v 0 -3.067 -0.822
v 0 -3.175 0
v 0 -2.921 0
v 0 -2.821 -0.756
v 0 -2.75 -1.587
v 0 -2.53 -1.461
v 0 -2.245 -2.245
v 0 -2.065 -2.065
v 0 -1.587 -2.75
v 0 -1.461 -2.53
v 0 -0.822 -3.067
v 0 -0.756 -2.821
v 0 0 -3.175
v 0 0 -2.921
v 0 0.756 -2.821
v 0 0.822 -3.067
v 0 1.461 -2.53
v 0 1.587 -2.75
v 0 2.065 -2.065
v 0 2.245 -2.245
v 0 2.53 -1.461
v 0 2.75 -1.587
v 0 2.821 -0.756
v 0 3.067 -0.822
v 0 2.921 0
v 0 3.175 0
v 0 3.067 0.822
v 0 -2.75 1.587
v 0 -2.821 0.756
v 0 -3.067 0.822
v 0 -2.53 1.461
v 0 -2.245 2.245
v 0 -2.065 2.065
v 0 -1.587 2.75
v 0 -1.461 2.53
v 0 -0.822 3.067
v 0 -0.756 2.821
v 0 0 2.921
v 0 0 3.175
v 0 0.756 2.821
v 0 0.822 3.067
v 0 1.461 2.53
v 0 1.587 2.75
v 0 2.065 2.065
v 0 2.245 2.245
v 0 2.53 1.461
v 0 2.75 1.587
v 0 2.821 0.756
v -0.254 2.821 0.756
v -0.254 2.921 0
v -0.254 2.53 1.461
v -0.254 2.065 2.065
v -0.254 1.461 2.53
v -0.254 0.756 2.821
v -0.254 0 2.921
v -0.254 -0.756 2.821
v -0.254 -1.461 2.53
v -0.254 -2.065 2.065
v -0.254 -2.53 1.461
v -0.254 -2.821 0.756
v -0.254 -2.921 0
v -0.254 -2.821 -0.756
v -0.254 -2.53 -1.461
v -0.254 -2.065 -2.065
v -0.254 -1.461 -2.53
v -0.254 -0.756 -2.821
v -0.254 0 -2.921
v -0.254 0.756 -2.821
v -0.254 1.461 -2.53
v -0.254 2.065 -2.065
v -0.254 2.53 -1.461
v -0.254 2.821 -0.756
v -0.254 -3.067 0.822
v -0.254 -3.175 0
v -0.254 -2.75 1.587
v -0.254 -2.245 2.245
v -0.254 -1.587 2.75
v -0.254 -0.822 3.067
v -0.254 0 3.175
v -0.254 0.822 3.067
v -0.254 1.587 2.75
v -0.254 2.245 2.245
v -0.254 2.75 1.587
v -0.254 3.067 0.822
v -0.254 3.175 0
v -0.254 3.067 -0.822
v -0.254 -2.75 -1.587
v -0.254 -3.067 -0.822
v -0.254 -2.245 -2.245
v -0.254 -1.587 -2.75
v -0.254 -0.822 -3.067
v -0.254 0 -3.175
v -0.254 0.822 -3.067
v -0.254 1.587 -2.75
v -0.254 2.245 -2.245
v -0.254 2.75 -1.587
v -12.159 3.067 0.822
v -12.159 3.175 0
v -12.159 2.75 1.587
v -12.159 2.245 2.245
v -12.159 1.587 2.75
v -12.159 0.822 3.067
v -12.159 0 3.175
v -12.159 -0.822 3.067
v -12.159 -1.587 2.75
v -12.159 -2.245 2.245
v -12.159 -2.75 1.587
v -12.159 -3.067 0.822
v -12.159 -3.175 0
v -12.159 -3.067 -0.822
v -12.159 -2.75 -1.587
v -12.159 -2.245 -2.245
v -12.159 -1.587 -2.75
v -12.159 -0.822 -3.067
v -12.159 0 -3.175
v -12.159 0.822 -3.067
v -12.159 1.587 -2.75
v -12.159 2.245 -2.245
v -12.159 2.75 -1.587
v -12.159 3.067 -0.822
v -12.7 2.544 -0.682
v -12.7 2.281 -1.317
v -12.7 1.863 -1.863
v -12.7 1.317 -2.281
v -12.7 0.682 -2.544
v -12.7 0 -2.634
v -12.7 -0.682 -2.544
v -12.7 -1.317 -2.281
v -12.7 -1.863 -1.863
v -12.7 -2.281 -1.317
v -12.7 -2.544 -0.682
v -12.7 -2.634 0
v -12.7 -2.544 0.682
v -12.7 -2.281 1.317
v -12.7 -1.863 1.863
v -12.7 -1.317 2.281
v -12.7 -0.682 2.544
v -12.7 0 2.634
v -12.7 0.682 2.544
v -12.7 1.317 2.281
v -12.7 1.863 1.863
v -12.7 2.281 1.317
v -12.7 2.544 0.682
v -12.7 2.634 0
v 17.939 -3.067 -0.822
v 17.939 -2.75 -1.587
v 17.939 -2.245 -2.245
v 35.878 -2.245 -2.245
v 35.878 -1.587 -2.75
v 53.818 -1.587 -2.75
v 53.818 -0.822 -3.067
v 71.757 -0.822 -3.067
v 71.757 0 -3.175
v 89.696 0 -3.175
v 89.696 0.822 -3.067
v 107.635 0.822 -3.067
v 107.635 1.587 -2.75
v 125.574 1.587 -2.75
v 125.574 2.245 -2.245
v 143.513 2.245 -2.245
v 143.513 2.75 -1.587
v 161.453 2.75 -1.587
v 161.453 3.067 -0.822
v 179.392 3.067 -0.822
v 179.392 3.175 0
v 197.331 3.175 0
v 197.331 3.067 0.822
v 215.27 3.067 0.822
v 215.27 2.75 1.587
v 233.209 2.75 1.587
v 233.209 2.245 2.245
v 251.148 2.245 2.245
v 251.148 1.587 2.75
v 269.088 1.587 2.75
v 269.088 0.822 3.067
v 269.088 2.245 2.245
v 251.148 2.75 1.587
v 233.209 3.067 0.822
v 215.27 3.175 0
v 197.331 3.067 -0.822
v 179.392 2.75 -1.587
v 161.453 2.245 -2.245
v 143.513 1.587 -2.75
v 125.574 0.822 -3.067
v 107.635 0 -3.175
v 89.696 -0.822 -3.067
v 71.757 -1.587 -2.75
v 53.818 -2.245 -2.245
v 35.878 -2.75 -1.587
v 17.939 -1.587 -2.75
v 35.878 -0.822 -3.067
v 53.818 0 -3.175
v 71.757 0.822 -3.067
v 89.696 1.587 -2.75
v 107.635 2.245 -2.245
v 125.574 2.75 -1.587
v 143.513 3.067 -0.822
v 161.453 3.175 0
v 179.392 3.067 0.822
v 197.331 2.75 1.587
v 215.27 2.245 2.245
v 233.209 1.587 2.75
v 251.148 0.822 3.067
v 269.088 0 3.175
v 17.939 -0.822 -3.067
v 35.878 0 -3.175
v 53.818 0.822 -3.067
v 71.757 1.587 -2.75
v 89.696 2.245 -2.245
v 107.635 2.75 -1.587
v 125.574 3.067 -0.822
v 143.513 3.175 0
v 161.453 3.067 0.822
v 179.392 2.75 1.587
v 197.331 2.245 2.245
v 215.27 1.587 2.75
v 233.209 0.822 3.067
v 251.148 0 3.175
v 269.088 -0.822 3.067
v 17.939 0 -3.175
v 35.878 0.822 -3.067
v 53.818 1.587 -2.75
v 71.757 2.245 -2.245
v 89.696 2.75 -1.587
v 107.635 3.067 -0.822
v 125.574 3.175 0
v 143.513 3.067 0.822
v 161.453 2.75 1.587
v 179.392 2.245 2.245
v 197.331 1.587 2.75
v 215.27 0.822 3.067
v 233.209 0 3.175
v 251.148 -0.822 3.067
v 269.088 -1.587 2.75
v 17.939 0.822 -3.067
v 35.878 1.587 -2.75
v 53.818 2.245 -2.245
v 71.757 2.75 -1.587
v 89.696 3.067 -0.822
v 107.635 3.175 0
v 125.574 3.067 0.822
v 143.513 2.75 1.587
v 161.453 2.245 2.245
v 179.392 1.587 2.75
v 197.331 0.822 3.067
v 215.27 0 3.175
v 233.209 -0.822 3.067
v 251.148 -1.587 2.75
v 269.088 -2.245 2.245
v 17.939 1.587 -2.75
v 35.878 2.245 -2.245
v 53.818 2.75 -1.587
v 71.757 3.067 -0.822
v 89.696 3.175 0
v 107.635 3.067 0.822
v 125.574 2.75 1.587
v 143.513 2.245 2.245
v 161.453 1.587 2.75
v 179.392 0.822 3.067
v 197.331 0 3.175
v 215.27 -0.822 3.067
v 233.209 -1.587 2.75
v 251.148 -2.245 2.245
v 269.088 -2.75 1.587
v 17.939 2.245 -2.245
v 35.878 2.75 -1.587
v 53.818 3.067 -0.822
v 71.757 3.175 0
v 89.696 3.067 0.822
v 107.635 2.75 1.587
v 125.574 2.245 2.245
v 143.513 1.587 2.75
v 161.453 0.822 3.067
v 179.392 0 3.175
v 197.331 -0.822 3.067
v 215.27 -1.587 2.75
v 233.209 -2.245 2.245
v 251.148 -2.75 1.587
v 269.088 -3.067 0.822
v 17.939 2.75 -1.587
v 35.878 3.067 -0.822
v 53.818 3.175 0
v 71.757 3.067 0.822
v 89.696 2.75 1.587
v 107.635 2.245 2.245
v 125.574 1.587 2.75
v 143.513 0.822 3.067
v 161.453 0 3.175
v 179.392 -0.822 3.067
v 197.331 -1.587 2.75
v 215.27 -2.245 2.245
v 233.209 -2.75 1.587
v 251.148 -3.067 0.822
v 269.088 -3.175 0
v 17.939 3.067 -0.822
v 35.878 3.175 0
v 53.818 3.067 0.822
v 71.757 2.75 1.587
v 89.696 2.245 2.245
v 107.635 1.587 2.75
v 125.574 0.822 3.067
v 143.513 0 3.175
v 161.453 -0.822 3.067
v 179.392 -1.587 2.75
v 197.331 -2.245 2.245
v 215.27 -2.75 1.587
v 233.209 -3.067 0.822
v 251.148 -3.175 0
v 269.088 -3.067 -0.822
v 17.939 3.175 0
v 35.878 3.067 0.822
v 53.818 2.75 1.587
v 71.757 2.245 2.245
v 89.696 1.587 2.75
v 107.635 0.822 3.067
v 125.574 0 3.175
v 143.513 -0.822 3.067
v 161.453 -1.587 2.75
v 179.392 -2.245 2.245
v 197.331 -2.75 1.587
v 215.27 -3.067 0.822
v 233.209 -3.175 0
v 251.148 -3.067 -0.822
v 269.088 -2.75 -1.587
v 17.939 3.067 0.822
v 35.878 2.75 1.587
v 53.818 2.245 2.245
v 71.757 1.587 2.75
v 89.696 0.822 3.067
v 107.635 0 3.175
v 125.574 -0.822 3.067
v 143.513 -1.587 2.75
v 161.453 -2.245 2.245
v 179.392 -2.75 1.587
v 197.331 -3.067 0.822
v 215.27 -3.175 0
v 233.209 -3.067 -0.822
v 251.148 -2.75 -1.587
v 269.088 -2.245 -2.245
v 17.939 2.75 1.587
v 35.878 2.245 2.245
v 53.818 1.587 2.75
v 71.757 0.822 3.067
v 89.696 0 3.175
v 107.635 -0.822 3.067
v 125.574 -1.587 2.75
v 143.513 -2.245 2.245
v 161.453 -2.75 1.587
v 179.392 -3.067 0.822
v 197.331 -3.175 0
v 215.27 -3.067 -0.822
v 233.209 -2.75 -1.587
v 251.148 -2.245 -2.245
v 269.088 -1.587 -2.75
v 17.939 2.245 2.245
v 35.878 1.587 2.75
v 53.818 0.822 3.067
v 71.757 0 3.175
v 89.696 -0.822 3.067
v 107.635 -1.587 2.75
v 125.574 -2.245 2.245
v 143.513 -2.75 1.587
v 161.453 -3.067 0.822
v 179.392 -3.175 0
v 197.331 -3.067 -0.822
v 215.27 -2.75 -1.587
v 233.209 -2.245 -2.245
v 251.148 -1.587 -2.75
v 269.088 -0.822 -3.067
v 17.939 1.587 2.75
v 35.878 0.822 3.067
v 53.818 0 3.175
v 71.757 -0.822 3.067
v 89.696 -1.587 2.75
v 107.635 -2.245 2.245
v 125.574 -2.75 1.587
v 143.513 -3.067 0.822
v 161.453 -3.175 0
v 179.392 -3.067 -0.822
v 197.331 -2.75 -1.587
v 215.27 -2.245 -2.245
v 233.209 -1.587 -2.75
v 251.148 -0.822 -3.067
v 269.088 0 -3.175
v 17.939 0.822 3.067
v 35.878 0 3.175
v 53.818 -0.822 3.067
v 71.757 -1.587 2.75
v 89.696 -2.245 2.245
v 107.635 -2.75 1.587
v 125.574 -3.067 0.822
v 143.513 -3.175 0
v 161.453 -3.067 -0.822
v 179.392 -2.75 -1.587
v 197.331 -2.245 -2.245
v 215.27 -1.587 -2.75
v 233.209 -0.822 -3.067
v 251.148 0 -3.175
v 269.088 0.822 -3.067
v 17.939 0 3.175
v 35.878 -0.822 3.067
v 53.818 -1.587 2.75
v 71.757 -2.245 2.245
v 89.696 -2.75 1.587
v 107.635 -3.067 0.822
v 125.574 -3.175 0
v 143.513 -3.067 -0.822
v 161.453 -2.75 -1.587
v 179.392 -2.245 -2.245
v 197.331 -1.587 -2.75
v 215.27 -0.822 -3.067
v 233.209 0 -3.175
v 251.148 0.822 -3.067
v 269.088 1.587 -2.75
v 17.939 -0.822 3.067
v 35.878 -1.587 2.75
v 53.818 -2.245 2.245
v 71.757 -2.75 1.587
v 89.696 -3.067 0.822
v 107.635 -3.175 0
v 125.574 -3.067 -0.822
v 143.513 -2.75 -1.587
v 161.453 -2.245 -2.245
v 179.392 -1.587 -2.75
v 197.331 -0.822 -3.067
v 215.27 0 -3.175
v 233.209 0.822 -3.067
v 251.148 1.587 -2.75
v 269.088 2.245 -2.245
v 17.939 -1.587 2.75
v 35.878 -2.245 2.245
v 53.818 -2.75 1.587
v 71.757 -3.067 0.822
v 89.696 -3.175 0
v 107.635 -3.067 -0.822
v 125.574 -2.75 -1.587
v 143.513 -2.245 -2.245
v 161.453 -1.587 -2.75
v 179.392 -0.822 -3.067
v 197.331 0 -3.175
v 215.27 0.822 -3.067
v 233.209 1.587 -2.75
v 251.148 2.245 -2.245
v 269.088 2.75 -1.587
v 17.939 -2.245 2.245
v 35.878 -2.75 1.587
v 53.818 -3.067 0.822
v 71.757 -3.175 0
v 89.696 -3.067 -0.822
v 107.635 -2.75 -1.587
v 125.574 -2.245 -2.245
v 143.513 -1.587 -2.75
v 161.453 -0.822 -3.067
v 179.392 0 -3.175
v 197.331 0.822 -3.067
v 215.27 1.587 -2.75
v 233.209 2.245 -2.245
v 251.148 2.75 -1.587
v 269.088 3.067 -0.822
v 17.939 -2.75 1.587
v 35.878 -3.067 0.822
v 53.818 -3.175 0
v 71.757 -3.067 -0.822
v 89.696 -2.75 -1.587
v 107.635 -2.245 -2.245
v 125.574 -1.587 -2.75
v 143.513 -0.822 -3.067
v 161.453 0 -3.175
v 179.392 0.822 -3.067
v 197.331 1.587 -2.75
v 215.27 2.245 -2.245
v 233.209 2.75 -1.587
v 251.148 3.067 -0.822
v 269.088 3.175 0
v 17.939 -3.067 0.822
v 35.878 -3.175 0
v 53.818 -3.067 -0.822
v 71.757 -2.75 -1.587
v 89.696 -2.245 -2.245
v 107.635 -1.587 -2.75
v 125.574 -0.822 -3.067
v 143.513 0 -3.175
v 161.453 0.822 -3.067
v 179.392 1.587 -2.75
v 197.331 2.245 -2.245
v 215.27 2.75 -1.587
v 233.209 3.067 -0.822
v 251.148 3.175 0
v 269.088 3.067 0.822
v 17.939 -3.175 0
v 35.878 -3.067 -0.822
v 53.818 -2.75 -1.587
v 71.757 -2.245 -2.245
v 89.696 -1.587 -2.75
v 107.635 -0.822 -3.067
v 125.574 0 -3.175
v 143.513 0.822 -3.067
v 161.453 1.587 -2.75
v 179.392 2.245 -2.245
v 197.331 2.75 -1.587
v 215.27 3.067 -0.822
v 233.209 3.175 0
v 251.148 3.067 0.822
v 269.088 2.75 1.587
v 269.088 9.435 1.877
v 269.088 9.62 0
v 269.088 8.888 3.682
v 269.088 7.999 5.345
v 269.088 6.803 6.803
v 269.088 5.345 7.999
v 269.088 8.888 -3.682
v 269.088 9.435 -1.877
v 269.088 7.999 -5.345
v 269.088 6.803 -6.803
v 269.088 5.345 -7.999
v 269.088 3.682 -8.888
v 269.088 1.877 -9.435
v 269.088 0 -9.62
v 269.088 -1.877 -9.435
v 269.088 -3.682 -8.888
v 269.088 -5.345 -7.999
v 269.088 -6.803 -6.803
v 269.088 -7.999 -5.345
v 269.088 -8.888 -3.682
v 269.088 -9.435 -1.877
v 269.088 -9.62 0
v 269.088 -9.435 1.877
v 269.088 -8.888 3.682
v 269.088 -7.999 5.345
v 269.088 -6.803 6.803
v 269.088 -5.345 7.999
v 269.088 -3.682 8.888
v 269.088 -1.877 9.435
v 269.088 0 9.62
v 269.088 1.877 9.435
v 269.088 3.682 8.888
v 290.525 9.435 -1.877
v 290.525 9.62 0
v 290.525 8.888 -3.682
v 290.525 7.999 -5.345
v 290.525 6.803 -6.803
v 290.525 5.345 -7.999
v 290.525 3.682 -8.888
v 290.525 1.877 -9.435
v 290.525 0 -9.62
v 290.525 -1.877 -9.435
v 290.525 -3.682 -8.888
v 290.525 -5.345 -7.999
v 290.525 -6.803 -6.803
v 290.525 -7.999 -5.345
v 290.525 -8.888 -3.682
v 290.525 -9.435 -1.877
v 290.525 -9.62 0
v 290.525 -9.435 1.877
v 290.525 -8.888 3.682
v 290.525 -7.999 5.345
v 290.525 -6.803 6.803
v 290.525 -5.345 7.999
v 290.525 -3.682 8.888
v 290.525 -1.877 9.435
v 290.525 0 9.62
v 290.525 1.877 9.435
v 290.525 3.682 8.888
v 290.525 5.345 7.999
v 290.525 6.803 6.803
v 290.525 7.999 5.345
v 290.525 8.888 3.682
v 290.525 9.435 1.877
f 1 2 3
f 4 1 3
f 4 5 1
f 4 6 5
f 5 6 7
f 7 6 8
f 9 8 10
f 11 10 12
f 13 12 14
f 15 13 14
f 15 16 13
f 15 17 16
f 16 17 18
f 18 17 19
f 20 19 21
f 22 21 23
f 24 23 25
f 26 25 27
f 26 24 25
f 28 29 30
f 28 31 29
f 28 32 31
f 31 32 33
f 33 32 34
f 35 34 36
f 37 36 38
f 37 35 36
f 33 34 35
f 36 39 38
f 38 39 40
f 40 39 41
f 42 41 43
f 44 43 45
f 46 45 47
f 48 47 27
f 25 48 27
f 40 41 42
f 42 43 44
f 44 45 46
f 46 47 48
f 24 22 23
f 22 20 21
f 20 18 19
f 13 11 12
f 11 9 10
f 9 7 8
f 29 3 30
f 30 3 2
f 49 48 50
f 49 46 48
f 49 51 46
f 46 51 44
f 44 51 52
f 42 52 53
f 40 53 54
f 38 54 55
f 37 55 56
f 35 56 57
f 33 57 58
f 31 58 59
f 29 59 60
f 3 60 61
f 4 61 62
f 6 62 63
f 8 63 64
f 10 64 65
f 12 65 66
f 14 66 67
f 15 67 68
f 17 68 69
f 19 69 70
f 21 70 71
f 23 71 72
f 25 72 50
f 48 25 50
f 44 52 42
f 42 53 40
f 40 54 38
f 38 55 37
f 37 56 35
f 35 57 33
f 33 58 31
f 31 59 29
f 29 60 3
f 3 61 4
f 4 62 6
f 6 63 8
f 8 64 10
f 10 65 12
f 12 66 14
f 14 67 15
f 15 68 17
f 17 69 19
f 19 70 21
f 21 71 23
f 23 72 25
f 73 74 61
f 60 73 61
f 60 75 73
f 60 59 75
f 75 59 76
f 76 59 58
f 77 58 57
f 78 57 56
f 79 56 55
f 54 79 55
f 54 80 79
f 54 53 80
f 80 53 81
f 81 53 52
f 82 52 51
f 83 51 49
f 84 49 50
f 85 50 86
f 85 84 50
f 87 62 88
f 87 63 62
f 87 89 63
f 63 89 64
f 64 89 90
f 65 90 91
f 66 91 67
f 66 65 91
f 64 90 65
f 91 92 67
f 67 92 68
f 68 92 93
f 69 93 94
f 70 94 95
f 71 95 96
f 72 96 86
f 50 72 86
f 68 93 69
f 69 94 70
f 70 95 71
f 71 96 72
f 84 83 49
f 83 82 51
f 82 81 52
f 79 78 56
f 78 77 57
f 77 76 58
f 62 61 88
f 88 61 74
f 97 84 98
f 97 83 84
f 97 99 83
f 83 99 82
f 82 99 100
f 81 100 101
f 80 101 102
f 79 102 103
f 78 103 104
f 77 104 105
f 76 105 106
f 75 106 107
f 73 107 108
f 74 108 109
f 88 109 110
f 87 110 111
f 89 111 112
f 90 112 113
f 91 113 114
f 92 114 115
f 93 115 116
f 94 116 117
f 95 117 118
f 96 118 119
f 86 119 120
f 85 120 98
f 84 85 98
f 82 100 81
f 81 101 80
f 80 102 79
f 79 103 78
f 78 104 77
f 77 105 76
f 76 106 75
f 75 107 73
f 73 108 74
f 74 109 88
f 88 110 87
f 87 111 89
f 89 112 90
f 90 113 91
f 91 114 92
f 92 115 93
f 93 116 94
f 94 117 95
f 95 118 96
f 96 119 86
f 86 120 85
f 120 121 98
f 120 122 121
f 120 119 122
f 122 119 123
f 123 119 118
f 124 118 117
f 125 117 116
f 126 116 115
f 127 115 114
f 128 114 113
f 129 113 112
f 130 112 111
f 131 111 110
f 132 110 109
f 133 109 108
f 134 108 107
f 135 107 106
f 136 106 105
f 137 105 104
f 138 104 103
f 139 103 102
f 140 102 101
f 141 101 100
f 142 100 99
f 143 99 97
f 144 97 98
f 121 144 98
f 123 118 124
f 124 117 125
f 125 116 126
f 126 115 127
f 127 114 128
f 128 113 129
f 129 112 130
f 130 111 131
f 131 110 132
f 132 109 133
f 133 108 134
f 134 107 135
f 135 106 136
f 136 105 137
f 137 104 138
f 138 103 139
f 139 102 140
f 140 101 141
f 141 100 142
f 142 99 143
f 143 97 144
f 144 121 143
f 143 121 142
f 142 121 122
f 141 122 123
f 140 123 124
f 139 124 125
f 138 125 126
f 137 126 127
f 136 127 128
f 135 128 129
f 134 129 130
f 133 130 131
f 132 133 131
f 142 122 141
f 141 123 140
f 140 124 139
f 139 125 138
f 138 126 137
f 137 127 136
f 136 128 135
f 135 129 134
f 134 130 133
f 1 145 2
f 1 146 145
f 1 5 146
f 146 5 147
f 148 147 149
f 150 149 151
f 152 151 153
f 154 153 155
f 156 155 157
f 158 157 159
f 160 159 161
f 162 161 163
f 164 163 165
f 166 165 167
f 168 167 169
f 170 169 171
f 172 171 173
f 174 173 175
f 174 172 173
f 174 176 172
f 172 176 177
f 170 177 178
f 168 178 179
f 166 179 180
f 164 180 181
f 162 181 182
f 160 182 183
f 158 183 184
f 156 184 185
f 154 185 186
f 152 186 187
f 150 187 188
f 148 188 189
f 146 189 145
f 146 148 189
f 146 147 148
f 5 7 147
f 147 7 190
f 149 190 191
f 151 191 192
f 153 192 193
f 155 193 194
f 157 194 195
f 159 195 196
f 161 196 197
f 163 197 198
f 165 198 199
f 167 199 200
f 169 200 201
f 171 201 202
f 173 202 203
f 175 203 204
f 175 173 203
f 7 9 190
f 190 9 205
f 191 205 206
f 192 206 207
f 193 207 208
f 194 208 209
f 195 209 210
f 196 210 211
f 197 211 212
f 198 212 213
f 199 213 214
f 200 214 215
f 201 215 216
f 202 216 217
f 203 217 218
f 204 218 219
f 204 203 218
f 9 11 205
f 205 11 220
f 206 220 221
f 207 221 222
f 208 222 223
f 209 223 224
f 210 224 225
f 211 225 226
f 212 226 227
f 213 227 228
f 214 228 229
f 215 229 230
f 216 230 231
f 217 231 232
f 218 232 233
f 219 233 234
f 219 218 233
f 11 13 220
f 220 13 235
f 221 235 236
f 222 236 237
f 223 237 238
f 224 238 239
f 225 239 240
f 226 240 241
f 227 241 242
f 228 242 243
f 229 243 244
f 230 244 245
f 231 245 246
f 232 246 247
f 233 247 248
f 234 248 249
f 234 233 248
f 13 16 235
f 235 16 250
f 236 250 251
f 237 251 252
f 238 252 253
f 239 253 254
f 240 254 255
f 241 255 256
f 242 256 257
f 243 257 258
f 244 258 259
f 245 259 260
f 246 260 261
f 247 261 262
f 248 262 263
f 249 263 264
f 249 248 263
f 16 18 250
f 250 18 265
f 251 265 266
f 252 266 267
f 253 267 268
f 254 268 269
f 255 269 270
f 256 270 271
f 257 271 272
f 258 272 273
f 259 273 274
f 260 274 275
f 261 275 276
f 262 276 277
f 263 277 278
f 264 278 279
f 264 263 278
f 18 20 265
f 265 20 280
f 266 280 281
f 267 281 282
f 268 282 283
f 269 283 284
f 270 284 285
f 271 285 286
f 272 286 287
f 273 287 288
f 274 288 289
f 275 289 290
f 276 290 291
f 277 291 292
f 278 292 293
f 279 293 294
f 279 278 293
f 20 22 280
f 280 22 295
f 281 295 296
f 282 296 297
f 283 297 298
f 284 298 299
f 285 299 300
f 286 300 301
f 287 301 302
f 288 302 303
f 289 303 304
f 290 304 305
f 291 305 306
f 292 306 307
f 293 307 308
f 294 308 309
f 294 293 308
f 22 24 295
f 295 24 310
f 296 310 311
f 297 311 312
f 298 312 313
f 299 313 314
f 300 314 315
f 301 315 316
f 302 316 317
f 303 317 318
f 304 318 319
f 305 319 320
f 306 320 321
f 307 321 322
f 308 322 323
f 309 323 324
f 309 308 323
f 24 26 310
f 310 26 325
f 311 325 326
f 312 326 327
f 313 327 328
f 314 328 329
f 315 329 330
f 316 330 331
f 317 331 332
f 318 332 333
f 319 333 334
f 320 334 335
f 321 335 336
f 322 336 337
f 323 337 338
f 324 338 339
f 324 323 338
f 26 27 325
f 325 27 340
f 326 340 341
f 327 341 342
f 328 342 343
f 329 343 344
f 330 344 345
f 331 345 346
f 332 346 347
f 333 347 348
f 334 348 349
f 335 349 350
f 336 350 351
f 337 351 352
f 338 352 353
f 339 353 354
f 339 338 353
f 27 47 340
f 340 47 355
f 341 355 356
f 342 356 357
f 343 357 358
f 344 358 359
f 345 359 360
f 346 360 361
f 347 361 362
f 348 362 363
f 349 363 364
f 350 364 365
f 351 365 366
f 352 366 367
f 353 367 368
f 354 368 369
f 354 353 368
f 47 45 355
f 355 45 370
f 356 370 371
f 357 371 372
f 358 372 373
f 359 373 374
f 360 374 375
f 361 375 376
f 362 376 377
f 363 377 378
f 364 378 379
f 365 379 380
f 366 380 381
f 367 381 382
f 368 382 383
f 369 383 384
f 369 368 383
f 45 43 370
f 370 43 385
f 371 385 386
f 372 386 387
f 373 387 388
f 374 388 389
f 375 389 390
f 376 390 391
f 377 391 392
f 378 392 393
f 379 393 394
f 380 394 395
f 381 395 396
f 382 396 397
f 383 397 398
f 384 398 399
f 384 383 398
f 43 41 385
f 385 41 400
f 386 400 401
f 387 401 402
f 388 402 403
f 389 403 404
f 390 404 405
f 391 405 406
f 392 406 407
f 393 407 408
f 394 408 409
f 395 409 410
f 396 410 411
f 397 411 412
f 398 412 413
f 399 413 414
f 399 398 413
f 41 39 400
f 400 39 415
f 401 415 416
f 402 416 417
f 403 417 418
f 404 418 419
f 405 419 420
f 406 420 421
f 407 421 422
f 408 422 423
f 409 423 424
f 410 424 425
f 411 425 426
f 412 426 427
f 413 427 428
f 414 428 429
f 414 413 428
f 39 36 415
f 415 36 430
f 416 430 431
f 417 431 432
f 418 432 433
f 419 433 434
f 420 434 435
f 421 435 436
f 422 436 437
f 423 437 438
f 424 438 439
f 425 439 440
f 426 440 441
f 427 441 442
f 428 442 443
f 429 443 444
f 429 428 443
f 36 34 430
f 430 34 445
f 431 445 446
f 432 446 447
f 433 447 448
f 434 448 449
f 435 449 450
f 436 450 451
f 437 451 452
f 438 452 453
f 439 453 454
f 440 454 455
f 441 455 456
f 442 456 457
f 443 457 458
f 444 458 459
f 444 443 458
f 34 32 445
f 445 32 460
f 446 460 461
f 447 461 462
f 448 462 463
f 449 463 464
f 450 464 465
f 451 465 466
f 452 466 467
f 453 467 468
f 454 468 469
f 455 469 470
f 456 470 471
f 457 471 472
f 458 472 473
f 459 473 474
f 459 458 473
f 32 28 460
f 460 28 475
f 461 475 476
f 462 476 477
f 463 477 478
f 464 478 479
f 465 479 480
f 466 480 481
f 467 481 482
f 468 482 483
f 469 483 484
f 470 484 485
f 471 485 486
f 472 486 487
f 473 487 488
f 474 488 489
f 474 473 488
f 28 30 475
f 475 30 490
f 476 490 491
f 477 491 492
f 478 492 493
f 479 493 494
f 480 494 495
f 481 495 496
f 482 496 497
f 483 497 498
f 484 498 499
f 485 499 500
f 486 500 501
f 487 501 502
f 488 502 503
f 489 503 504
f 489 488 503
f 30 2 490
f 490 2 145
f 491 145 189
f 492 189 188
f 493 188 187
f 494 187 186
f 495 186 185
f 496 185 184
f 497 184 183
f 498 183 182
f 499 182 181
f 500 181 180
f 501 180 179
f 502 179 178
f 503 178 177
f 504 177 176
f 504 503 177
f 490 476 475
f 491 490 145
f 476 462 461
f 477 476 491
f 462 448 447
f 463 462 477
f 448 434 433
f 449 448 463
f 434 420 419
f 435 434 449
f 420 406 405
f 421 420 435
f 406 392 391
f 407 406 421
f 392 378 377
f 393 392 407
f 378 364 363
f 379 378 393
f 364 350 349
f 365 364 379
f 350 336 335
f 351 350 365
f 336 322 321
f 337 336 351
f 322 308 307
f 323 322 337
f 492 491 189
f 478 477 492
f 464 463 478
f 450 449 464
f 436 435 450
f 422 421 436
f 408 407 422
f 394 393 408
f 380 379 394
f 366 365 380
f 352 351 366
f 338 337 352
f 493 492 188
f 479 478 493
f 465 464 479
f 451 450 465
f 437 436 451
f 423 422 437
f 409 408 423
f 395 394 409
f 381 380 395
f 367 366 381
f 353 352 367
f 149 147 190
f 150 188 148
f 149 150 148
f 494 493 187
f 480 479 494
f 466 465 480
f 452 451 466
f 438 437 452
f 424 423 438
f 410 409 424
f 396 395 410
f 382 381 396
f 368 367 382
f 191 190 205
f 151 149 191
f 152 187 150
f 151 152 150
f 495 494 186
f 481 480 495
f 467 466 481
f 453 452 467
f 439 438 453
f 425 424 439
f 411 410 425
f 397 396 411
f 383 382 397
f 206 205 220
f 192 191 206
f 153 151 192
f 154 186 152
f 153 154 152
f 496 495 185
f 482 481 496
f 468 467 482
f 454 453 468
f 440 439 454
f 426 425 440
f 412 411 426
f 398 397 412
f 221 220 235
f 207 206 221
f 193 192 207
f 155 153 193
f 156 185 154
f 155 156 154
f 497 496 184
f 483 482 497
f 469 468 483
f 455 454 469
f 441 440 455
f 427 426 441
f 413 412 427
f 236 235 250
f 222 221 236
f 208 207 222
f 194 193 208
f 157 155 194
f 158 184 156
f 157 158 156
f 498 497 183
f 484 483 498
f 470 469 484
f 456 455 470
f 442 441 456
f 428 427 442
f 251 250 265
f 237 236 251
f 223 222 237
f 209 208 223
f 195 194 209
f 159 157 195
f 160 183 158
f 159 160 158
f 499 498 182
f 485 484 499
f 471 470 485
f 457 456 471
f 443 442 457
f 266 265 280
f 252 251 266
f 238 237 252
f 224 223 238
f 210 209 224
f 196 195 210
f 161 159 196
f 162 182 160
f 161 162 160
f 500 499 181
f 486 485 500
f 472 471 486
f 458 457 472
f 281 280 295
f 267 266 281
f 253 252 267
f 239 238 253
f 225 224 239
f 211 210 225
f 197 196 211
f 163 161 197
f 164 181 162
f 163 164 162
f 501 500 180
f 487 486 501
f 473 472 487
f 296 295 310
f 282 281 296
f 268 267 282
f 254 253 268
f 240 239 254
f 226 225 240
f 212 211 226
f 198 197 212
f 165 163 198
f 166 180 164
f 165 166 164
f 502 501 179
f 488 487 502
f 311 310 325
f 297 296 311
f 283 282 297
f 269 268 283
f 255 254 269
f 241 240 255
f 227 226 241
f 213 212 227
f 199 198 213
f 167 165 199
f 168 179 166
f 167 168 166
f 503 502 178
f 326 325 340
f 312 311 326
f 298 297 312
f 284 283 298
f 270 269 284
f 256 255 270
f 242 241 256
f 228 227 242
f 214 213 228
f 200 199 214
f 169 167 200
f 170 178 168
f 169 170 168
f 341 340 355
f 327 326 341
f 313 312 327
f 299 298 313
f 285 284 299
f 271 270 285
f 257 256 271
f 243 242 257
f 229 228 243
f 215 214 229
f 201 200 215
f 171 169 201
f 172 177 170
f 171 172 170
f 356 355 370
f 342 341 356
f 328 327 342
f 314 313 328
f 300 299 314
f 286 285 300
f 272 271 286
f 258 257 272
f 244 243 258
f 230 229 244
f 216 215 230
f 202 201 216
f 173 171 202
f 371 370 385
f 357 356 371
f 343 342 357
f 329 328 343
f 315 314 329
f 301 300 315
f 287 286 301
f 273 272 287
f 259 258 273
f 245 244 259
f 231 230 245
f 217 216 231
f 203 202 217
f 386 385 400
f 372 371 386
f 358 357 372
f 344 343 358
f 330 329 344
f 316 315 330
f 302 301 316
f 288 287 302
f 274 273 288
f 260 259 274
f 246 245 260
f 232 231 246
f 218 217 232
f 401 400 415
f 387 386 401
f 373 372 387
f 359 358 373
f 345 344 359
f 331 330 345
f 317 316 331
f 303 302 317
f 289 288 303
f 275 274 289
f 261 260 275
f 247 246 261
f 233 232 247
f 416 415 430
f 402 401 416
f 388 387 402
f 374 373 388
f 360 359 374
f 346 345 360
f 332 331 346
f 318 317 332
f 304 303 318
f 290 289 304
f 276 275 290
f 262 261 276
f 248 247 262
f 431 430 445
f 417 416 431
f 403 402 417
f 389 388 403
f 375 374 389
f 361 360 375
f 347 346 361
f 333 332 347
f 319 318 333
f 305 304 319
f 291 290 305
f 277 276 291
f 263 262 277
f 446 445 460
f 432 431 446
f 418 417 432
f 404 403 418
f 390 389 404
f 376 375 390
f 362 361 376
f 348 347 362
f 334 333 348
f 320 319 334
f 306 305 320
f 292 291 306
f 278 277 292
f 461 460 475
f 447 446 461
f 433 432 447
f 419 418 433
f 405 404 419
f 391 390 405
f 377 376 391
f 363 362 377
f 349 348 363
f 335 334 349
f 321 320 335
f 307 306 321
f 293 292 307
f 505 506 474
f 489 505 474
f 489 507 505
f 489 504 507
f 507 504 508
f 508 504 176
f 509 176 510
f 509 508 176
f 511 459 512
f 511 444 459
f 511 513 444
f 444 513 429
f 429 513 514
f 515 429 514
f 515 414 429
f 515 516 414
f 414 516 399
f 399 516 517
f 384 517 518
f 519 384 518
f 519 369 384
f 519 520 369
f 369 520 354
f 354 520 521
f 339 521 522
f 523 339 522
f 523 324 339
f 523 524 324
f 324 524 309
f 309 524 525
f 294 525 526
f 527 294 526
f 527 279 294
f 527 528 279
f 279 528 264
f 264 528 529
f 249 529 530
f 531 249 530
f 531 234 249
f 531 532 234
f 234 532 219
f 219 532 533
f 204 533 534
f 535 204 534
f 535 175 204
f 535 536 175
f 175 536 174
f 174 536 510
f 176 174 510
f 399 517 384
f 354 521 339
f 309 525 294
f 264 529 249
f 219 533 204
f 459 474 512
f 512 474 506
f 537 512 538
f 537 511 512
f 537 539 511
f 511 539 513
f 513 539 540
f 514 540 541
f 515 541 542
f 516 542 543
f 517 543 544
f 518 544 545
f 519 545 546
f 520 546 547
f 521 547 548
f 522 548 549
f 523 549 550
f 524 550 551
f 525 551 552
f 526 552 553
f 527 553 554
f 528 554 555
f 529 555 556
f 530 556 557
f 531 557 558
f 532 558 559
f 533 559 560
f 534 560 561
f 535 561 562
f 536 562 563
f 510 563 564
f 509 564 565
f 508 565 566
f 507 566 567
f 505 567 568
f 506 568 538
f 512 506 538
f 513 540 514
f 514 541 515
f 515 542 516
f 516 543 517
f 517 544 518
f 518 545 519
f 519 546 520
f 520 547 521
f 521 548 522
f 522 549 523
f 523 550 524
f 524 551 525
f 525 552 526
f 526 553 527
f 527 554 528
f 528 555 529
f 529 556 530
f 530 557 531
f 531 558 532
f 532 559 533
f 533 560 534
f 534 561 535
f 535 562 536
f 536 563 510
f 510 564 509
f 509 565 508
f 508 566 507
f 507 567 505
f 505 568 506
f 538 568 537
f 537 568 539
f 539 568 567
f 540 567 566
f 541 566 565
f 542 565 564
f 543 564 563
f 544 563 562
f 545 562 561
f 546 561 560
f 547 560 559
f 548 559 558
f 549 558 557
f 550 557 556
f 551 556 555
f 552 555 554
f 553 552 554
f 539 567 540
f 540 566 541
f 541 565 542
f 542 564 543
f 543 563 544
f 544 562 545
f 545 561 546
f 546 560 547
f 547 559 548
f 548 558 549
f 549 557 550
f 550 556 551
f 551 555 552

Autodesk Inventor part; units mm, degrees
sketch "Sketch_1" plane through (0, 0, 0) normal (0, 0, 1) x (1, 0, 0)
  line L0 (290.5252, 0) -> (0, 0)
  line L1 (0, 0) -> (0, 3.175)
  line L2 (0, 3.175) -> (269.0876, 3.175)
  line L3 (269.0876, 3.175) -> (269.0876, 9.6203)
  line L4 (269.0876, 9.6203) -> (290.5252, 9.6203)
  line L5 (290.5252, 9.6203) -> (290.5252, 0)
  line L6 (290.5252, 0) -> (0, 0)
revolve "Revolution1" add sketch "Sketch_1" angle 360 about axis through (290.5252, 0, 0) along (1, 0, 0)
sketch "Sketch_3" plane through (0, 0, 0) normal (0, 0, 1) x (1, 0, 0)
  line L0 (0, 0) -> (-12.7, 0)
  line L1 (-12.7, 0) -> (-12.7, 2.634)
  line L2 (-12.7, 2.634) -> (-12.159, 3.175)
  line L3 (-12.159, 3.175) -> (0, 3.175)
  line L4 (0, 3.175) -> (0, 0)
  line L5 (0, 0) -> (-12.7, 0)
revolve "Revolution2" add sketch "Sketch_3" angle 360 about axis through (0, 0, 0) along (1, 0, 0)
thread "Thread1" size "1/4-28 UNF" class "3A" standard "ANSI Unified Screw Threads" length 12.7 offset 269.0876
sketch "Sketch_30" plane through (0, 0, 0) normal (0, 0, 1) x (1, 0, 0)
  line L0 (0, 0) -> (-0.254, 0)
  line L1 (-0.254, 3.429) -> (-0.254, 2.921)
  line L2 (-0.254, 2.921) -> (0, 2.921)
  line L3 (0, 2.921) -> (0, 3.429)
  line L4 (0, 3.429) -> (-0.254, 3.429)
revolve "Revolution3" cut sketch "Sketch_30" angle 360 about axis through (0, 0, 0) along (1, 0, 0)
ref_plane "rod_cp_XY" through (0, 0, 0) normal (1, 0, 0) x (0, 0, -1)
ref_plane "rod_cp_YZ" through (0, 0, 0) normal (0, 0, -1) x (0, 1, 0)
ref_plane "rod_cp_ZX" through (0, 0, 0) normal (0, 1, 0) x (1, 0, 0)
ref_plane "to_rod_clevis_XY" through (-12.7, 0, 0) normal (1, 0, 0) x (0, 0, -1)
ref_plane "to_rod_clevis_YZ" through (-12.7, 0, 0) normal (0, 0, -1) x (0, 1, 0)
ref_plane "to_rod_clevis_ZX" through (-12.7, 0, 0) normal (0, 1, 0) x (1, 0, 0)
ref_plane "rl2_XY" through (0, 0, 0) normal (1, 0, 0) x (0, 0, -1)
ref_plane "rl2_YZ" through (0, 0, 0) normal (0, 0, -1) x (0, 1, 0)
ref_plane "rl2_ZX" through (0, 0, 0) normal (0, 1, 0) x (1, 0, 0)
ref_plane "rl1_XY" through (-12.7, 0, 0) normal (1, 0, 0) x (0, 0, -1)
ref_plane "rl1_YZ" through (-12.7, 0, 0) normal (0, 0, -1) x (0, 1, 0)
ref_plane "rl1_ZX" through (-12.7, 0, 0) normal (0, 1, 0) x (1, 0, 0)
ref_plane "thd1_XY" through (-12.7, 3.175, 0) normal (1, 0, 0) x (0, 0, -1)
ref_plane "thd1_YZ" through (-12.7, 3.175, 0) normal (0, 0, -1) x (0, 1, 0)
ref_plane "thd1_ZX" through (-12.7, 3.175, 0) normal (0, 1, 0) x (1, 0, 0)
ref_plane "thd2_XY" through (-12.7, -3.175, 0) normal (1, 0, 0) x (0, 0, -1)
ref_plane "thd2_YZ" through (-12.7, -3.175, 0) normal (0, 0, -1) x (0, 1, 0)
ref_plane "thd2_ZX" through (-12.7, -3.175, 0) normal (0, 1, 0) x (1, 0, 0)
ref_plane "dia1_XY" through (0, 3.175, 0) normal (1, 0, 0) x (0, 0, -1)
ref_plane "dia1_YZ" through (0, 3.175, 0) normal (0, 0, -1) x (0, 1, 0)
ref_plane "dia1_ZX" through (0, 3.175, 0) normal (0, 1, 0) x (1, 0, 0)
ref_plane "dia2_XY" through (0, -3.175, 0) normal (1, 0, 0) x (0, 0, -1)
ref_plane "dia2_YZ" through (0, -3.175, 0) normal (0, 0, -1) x (0, 1, 0)
ref_plane "dia2_ZX" through (0, -3.175, 0) normal (0, 1, 0) x (1, 0, 0)
ref_plane "hh1_XY" through (320.6496, 0, 0) normal (0, 0, 1) x (1, 0, 0)
ref_plane "hh1_YZ" through (320.6496, 0, 0) normal (1, 0, 0) x (0, 1, 0)
ref_plane "hh1_ZX" through (320.6496, 0, 0) normal (0, 1, 0) x (0, 0, 1)
ref_plane "hh2_XY" through (327.0504, 0, 0) normal (0, 0, 1) x (1, 0, 0)
ref_plane "hh2_YZ" through (327.0504, 0, 0) normal (1, 0, 0) x (0, 1, 0)
ref_plane "hh2_ZX" through (327.0504, 0, 0) normal (0, 1, 0) x (0, 0, 1)
ref_plane "dia12_XY" through (0, 0, 10.9537) normal (1, 0, 0) x (0, 0, -1)
ref_plane "dia12_YZ" through (0, 0, 10.9537) normal (0, 0, -1) x (0, 1, 0)
ref_plane "dia12_ZX" through (0, 0, 10.9537) normal (0, 1, 0) x (1, 0, 0)
ref_plane "dia22_XY" through (0, 0, -10.9537) normal (1, 0, 0) x (0, 0, -1)
ref_plane "dia22_YZ" through (0, 0, -10.9537) normal (0, 0, -1) x (0, 1, 0)
ref_plane "dia22_ZX" through (0, 0, -10.9537) normal (0, 1, 0) x (1, 0, 0)
properties part number "049-DXP0_rod"
